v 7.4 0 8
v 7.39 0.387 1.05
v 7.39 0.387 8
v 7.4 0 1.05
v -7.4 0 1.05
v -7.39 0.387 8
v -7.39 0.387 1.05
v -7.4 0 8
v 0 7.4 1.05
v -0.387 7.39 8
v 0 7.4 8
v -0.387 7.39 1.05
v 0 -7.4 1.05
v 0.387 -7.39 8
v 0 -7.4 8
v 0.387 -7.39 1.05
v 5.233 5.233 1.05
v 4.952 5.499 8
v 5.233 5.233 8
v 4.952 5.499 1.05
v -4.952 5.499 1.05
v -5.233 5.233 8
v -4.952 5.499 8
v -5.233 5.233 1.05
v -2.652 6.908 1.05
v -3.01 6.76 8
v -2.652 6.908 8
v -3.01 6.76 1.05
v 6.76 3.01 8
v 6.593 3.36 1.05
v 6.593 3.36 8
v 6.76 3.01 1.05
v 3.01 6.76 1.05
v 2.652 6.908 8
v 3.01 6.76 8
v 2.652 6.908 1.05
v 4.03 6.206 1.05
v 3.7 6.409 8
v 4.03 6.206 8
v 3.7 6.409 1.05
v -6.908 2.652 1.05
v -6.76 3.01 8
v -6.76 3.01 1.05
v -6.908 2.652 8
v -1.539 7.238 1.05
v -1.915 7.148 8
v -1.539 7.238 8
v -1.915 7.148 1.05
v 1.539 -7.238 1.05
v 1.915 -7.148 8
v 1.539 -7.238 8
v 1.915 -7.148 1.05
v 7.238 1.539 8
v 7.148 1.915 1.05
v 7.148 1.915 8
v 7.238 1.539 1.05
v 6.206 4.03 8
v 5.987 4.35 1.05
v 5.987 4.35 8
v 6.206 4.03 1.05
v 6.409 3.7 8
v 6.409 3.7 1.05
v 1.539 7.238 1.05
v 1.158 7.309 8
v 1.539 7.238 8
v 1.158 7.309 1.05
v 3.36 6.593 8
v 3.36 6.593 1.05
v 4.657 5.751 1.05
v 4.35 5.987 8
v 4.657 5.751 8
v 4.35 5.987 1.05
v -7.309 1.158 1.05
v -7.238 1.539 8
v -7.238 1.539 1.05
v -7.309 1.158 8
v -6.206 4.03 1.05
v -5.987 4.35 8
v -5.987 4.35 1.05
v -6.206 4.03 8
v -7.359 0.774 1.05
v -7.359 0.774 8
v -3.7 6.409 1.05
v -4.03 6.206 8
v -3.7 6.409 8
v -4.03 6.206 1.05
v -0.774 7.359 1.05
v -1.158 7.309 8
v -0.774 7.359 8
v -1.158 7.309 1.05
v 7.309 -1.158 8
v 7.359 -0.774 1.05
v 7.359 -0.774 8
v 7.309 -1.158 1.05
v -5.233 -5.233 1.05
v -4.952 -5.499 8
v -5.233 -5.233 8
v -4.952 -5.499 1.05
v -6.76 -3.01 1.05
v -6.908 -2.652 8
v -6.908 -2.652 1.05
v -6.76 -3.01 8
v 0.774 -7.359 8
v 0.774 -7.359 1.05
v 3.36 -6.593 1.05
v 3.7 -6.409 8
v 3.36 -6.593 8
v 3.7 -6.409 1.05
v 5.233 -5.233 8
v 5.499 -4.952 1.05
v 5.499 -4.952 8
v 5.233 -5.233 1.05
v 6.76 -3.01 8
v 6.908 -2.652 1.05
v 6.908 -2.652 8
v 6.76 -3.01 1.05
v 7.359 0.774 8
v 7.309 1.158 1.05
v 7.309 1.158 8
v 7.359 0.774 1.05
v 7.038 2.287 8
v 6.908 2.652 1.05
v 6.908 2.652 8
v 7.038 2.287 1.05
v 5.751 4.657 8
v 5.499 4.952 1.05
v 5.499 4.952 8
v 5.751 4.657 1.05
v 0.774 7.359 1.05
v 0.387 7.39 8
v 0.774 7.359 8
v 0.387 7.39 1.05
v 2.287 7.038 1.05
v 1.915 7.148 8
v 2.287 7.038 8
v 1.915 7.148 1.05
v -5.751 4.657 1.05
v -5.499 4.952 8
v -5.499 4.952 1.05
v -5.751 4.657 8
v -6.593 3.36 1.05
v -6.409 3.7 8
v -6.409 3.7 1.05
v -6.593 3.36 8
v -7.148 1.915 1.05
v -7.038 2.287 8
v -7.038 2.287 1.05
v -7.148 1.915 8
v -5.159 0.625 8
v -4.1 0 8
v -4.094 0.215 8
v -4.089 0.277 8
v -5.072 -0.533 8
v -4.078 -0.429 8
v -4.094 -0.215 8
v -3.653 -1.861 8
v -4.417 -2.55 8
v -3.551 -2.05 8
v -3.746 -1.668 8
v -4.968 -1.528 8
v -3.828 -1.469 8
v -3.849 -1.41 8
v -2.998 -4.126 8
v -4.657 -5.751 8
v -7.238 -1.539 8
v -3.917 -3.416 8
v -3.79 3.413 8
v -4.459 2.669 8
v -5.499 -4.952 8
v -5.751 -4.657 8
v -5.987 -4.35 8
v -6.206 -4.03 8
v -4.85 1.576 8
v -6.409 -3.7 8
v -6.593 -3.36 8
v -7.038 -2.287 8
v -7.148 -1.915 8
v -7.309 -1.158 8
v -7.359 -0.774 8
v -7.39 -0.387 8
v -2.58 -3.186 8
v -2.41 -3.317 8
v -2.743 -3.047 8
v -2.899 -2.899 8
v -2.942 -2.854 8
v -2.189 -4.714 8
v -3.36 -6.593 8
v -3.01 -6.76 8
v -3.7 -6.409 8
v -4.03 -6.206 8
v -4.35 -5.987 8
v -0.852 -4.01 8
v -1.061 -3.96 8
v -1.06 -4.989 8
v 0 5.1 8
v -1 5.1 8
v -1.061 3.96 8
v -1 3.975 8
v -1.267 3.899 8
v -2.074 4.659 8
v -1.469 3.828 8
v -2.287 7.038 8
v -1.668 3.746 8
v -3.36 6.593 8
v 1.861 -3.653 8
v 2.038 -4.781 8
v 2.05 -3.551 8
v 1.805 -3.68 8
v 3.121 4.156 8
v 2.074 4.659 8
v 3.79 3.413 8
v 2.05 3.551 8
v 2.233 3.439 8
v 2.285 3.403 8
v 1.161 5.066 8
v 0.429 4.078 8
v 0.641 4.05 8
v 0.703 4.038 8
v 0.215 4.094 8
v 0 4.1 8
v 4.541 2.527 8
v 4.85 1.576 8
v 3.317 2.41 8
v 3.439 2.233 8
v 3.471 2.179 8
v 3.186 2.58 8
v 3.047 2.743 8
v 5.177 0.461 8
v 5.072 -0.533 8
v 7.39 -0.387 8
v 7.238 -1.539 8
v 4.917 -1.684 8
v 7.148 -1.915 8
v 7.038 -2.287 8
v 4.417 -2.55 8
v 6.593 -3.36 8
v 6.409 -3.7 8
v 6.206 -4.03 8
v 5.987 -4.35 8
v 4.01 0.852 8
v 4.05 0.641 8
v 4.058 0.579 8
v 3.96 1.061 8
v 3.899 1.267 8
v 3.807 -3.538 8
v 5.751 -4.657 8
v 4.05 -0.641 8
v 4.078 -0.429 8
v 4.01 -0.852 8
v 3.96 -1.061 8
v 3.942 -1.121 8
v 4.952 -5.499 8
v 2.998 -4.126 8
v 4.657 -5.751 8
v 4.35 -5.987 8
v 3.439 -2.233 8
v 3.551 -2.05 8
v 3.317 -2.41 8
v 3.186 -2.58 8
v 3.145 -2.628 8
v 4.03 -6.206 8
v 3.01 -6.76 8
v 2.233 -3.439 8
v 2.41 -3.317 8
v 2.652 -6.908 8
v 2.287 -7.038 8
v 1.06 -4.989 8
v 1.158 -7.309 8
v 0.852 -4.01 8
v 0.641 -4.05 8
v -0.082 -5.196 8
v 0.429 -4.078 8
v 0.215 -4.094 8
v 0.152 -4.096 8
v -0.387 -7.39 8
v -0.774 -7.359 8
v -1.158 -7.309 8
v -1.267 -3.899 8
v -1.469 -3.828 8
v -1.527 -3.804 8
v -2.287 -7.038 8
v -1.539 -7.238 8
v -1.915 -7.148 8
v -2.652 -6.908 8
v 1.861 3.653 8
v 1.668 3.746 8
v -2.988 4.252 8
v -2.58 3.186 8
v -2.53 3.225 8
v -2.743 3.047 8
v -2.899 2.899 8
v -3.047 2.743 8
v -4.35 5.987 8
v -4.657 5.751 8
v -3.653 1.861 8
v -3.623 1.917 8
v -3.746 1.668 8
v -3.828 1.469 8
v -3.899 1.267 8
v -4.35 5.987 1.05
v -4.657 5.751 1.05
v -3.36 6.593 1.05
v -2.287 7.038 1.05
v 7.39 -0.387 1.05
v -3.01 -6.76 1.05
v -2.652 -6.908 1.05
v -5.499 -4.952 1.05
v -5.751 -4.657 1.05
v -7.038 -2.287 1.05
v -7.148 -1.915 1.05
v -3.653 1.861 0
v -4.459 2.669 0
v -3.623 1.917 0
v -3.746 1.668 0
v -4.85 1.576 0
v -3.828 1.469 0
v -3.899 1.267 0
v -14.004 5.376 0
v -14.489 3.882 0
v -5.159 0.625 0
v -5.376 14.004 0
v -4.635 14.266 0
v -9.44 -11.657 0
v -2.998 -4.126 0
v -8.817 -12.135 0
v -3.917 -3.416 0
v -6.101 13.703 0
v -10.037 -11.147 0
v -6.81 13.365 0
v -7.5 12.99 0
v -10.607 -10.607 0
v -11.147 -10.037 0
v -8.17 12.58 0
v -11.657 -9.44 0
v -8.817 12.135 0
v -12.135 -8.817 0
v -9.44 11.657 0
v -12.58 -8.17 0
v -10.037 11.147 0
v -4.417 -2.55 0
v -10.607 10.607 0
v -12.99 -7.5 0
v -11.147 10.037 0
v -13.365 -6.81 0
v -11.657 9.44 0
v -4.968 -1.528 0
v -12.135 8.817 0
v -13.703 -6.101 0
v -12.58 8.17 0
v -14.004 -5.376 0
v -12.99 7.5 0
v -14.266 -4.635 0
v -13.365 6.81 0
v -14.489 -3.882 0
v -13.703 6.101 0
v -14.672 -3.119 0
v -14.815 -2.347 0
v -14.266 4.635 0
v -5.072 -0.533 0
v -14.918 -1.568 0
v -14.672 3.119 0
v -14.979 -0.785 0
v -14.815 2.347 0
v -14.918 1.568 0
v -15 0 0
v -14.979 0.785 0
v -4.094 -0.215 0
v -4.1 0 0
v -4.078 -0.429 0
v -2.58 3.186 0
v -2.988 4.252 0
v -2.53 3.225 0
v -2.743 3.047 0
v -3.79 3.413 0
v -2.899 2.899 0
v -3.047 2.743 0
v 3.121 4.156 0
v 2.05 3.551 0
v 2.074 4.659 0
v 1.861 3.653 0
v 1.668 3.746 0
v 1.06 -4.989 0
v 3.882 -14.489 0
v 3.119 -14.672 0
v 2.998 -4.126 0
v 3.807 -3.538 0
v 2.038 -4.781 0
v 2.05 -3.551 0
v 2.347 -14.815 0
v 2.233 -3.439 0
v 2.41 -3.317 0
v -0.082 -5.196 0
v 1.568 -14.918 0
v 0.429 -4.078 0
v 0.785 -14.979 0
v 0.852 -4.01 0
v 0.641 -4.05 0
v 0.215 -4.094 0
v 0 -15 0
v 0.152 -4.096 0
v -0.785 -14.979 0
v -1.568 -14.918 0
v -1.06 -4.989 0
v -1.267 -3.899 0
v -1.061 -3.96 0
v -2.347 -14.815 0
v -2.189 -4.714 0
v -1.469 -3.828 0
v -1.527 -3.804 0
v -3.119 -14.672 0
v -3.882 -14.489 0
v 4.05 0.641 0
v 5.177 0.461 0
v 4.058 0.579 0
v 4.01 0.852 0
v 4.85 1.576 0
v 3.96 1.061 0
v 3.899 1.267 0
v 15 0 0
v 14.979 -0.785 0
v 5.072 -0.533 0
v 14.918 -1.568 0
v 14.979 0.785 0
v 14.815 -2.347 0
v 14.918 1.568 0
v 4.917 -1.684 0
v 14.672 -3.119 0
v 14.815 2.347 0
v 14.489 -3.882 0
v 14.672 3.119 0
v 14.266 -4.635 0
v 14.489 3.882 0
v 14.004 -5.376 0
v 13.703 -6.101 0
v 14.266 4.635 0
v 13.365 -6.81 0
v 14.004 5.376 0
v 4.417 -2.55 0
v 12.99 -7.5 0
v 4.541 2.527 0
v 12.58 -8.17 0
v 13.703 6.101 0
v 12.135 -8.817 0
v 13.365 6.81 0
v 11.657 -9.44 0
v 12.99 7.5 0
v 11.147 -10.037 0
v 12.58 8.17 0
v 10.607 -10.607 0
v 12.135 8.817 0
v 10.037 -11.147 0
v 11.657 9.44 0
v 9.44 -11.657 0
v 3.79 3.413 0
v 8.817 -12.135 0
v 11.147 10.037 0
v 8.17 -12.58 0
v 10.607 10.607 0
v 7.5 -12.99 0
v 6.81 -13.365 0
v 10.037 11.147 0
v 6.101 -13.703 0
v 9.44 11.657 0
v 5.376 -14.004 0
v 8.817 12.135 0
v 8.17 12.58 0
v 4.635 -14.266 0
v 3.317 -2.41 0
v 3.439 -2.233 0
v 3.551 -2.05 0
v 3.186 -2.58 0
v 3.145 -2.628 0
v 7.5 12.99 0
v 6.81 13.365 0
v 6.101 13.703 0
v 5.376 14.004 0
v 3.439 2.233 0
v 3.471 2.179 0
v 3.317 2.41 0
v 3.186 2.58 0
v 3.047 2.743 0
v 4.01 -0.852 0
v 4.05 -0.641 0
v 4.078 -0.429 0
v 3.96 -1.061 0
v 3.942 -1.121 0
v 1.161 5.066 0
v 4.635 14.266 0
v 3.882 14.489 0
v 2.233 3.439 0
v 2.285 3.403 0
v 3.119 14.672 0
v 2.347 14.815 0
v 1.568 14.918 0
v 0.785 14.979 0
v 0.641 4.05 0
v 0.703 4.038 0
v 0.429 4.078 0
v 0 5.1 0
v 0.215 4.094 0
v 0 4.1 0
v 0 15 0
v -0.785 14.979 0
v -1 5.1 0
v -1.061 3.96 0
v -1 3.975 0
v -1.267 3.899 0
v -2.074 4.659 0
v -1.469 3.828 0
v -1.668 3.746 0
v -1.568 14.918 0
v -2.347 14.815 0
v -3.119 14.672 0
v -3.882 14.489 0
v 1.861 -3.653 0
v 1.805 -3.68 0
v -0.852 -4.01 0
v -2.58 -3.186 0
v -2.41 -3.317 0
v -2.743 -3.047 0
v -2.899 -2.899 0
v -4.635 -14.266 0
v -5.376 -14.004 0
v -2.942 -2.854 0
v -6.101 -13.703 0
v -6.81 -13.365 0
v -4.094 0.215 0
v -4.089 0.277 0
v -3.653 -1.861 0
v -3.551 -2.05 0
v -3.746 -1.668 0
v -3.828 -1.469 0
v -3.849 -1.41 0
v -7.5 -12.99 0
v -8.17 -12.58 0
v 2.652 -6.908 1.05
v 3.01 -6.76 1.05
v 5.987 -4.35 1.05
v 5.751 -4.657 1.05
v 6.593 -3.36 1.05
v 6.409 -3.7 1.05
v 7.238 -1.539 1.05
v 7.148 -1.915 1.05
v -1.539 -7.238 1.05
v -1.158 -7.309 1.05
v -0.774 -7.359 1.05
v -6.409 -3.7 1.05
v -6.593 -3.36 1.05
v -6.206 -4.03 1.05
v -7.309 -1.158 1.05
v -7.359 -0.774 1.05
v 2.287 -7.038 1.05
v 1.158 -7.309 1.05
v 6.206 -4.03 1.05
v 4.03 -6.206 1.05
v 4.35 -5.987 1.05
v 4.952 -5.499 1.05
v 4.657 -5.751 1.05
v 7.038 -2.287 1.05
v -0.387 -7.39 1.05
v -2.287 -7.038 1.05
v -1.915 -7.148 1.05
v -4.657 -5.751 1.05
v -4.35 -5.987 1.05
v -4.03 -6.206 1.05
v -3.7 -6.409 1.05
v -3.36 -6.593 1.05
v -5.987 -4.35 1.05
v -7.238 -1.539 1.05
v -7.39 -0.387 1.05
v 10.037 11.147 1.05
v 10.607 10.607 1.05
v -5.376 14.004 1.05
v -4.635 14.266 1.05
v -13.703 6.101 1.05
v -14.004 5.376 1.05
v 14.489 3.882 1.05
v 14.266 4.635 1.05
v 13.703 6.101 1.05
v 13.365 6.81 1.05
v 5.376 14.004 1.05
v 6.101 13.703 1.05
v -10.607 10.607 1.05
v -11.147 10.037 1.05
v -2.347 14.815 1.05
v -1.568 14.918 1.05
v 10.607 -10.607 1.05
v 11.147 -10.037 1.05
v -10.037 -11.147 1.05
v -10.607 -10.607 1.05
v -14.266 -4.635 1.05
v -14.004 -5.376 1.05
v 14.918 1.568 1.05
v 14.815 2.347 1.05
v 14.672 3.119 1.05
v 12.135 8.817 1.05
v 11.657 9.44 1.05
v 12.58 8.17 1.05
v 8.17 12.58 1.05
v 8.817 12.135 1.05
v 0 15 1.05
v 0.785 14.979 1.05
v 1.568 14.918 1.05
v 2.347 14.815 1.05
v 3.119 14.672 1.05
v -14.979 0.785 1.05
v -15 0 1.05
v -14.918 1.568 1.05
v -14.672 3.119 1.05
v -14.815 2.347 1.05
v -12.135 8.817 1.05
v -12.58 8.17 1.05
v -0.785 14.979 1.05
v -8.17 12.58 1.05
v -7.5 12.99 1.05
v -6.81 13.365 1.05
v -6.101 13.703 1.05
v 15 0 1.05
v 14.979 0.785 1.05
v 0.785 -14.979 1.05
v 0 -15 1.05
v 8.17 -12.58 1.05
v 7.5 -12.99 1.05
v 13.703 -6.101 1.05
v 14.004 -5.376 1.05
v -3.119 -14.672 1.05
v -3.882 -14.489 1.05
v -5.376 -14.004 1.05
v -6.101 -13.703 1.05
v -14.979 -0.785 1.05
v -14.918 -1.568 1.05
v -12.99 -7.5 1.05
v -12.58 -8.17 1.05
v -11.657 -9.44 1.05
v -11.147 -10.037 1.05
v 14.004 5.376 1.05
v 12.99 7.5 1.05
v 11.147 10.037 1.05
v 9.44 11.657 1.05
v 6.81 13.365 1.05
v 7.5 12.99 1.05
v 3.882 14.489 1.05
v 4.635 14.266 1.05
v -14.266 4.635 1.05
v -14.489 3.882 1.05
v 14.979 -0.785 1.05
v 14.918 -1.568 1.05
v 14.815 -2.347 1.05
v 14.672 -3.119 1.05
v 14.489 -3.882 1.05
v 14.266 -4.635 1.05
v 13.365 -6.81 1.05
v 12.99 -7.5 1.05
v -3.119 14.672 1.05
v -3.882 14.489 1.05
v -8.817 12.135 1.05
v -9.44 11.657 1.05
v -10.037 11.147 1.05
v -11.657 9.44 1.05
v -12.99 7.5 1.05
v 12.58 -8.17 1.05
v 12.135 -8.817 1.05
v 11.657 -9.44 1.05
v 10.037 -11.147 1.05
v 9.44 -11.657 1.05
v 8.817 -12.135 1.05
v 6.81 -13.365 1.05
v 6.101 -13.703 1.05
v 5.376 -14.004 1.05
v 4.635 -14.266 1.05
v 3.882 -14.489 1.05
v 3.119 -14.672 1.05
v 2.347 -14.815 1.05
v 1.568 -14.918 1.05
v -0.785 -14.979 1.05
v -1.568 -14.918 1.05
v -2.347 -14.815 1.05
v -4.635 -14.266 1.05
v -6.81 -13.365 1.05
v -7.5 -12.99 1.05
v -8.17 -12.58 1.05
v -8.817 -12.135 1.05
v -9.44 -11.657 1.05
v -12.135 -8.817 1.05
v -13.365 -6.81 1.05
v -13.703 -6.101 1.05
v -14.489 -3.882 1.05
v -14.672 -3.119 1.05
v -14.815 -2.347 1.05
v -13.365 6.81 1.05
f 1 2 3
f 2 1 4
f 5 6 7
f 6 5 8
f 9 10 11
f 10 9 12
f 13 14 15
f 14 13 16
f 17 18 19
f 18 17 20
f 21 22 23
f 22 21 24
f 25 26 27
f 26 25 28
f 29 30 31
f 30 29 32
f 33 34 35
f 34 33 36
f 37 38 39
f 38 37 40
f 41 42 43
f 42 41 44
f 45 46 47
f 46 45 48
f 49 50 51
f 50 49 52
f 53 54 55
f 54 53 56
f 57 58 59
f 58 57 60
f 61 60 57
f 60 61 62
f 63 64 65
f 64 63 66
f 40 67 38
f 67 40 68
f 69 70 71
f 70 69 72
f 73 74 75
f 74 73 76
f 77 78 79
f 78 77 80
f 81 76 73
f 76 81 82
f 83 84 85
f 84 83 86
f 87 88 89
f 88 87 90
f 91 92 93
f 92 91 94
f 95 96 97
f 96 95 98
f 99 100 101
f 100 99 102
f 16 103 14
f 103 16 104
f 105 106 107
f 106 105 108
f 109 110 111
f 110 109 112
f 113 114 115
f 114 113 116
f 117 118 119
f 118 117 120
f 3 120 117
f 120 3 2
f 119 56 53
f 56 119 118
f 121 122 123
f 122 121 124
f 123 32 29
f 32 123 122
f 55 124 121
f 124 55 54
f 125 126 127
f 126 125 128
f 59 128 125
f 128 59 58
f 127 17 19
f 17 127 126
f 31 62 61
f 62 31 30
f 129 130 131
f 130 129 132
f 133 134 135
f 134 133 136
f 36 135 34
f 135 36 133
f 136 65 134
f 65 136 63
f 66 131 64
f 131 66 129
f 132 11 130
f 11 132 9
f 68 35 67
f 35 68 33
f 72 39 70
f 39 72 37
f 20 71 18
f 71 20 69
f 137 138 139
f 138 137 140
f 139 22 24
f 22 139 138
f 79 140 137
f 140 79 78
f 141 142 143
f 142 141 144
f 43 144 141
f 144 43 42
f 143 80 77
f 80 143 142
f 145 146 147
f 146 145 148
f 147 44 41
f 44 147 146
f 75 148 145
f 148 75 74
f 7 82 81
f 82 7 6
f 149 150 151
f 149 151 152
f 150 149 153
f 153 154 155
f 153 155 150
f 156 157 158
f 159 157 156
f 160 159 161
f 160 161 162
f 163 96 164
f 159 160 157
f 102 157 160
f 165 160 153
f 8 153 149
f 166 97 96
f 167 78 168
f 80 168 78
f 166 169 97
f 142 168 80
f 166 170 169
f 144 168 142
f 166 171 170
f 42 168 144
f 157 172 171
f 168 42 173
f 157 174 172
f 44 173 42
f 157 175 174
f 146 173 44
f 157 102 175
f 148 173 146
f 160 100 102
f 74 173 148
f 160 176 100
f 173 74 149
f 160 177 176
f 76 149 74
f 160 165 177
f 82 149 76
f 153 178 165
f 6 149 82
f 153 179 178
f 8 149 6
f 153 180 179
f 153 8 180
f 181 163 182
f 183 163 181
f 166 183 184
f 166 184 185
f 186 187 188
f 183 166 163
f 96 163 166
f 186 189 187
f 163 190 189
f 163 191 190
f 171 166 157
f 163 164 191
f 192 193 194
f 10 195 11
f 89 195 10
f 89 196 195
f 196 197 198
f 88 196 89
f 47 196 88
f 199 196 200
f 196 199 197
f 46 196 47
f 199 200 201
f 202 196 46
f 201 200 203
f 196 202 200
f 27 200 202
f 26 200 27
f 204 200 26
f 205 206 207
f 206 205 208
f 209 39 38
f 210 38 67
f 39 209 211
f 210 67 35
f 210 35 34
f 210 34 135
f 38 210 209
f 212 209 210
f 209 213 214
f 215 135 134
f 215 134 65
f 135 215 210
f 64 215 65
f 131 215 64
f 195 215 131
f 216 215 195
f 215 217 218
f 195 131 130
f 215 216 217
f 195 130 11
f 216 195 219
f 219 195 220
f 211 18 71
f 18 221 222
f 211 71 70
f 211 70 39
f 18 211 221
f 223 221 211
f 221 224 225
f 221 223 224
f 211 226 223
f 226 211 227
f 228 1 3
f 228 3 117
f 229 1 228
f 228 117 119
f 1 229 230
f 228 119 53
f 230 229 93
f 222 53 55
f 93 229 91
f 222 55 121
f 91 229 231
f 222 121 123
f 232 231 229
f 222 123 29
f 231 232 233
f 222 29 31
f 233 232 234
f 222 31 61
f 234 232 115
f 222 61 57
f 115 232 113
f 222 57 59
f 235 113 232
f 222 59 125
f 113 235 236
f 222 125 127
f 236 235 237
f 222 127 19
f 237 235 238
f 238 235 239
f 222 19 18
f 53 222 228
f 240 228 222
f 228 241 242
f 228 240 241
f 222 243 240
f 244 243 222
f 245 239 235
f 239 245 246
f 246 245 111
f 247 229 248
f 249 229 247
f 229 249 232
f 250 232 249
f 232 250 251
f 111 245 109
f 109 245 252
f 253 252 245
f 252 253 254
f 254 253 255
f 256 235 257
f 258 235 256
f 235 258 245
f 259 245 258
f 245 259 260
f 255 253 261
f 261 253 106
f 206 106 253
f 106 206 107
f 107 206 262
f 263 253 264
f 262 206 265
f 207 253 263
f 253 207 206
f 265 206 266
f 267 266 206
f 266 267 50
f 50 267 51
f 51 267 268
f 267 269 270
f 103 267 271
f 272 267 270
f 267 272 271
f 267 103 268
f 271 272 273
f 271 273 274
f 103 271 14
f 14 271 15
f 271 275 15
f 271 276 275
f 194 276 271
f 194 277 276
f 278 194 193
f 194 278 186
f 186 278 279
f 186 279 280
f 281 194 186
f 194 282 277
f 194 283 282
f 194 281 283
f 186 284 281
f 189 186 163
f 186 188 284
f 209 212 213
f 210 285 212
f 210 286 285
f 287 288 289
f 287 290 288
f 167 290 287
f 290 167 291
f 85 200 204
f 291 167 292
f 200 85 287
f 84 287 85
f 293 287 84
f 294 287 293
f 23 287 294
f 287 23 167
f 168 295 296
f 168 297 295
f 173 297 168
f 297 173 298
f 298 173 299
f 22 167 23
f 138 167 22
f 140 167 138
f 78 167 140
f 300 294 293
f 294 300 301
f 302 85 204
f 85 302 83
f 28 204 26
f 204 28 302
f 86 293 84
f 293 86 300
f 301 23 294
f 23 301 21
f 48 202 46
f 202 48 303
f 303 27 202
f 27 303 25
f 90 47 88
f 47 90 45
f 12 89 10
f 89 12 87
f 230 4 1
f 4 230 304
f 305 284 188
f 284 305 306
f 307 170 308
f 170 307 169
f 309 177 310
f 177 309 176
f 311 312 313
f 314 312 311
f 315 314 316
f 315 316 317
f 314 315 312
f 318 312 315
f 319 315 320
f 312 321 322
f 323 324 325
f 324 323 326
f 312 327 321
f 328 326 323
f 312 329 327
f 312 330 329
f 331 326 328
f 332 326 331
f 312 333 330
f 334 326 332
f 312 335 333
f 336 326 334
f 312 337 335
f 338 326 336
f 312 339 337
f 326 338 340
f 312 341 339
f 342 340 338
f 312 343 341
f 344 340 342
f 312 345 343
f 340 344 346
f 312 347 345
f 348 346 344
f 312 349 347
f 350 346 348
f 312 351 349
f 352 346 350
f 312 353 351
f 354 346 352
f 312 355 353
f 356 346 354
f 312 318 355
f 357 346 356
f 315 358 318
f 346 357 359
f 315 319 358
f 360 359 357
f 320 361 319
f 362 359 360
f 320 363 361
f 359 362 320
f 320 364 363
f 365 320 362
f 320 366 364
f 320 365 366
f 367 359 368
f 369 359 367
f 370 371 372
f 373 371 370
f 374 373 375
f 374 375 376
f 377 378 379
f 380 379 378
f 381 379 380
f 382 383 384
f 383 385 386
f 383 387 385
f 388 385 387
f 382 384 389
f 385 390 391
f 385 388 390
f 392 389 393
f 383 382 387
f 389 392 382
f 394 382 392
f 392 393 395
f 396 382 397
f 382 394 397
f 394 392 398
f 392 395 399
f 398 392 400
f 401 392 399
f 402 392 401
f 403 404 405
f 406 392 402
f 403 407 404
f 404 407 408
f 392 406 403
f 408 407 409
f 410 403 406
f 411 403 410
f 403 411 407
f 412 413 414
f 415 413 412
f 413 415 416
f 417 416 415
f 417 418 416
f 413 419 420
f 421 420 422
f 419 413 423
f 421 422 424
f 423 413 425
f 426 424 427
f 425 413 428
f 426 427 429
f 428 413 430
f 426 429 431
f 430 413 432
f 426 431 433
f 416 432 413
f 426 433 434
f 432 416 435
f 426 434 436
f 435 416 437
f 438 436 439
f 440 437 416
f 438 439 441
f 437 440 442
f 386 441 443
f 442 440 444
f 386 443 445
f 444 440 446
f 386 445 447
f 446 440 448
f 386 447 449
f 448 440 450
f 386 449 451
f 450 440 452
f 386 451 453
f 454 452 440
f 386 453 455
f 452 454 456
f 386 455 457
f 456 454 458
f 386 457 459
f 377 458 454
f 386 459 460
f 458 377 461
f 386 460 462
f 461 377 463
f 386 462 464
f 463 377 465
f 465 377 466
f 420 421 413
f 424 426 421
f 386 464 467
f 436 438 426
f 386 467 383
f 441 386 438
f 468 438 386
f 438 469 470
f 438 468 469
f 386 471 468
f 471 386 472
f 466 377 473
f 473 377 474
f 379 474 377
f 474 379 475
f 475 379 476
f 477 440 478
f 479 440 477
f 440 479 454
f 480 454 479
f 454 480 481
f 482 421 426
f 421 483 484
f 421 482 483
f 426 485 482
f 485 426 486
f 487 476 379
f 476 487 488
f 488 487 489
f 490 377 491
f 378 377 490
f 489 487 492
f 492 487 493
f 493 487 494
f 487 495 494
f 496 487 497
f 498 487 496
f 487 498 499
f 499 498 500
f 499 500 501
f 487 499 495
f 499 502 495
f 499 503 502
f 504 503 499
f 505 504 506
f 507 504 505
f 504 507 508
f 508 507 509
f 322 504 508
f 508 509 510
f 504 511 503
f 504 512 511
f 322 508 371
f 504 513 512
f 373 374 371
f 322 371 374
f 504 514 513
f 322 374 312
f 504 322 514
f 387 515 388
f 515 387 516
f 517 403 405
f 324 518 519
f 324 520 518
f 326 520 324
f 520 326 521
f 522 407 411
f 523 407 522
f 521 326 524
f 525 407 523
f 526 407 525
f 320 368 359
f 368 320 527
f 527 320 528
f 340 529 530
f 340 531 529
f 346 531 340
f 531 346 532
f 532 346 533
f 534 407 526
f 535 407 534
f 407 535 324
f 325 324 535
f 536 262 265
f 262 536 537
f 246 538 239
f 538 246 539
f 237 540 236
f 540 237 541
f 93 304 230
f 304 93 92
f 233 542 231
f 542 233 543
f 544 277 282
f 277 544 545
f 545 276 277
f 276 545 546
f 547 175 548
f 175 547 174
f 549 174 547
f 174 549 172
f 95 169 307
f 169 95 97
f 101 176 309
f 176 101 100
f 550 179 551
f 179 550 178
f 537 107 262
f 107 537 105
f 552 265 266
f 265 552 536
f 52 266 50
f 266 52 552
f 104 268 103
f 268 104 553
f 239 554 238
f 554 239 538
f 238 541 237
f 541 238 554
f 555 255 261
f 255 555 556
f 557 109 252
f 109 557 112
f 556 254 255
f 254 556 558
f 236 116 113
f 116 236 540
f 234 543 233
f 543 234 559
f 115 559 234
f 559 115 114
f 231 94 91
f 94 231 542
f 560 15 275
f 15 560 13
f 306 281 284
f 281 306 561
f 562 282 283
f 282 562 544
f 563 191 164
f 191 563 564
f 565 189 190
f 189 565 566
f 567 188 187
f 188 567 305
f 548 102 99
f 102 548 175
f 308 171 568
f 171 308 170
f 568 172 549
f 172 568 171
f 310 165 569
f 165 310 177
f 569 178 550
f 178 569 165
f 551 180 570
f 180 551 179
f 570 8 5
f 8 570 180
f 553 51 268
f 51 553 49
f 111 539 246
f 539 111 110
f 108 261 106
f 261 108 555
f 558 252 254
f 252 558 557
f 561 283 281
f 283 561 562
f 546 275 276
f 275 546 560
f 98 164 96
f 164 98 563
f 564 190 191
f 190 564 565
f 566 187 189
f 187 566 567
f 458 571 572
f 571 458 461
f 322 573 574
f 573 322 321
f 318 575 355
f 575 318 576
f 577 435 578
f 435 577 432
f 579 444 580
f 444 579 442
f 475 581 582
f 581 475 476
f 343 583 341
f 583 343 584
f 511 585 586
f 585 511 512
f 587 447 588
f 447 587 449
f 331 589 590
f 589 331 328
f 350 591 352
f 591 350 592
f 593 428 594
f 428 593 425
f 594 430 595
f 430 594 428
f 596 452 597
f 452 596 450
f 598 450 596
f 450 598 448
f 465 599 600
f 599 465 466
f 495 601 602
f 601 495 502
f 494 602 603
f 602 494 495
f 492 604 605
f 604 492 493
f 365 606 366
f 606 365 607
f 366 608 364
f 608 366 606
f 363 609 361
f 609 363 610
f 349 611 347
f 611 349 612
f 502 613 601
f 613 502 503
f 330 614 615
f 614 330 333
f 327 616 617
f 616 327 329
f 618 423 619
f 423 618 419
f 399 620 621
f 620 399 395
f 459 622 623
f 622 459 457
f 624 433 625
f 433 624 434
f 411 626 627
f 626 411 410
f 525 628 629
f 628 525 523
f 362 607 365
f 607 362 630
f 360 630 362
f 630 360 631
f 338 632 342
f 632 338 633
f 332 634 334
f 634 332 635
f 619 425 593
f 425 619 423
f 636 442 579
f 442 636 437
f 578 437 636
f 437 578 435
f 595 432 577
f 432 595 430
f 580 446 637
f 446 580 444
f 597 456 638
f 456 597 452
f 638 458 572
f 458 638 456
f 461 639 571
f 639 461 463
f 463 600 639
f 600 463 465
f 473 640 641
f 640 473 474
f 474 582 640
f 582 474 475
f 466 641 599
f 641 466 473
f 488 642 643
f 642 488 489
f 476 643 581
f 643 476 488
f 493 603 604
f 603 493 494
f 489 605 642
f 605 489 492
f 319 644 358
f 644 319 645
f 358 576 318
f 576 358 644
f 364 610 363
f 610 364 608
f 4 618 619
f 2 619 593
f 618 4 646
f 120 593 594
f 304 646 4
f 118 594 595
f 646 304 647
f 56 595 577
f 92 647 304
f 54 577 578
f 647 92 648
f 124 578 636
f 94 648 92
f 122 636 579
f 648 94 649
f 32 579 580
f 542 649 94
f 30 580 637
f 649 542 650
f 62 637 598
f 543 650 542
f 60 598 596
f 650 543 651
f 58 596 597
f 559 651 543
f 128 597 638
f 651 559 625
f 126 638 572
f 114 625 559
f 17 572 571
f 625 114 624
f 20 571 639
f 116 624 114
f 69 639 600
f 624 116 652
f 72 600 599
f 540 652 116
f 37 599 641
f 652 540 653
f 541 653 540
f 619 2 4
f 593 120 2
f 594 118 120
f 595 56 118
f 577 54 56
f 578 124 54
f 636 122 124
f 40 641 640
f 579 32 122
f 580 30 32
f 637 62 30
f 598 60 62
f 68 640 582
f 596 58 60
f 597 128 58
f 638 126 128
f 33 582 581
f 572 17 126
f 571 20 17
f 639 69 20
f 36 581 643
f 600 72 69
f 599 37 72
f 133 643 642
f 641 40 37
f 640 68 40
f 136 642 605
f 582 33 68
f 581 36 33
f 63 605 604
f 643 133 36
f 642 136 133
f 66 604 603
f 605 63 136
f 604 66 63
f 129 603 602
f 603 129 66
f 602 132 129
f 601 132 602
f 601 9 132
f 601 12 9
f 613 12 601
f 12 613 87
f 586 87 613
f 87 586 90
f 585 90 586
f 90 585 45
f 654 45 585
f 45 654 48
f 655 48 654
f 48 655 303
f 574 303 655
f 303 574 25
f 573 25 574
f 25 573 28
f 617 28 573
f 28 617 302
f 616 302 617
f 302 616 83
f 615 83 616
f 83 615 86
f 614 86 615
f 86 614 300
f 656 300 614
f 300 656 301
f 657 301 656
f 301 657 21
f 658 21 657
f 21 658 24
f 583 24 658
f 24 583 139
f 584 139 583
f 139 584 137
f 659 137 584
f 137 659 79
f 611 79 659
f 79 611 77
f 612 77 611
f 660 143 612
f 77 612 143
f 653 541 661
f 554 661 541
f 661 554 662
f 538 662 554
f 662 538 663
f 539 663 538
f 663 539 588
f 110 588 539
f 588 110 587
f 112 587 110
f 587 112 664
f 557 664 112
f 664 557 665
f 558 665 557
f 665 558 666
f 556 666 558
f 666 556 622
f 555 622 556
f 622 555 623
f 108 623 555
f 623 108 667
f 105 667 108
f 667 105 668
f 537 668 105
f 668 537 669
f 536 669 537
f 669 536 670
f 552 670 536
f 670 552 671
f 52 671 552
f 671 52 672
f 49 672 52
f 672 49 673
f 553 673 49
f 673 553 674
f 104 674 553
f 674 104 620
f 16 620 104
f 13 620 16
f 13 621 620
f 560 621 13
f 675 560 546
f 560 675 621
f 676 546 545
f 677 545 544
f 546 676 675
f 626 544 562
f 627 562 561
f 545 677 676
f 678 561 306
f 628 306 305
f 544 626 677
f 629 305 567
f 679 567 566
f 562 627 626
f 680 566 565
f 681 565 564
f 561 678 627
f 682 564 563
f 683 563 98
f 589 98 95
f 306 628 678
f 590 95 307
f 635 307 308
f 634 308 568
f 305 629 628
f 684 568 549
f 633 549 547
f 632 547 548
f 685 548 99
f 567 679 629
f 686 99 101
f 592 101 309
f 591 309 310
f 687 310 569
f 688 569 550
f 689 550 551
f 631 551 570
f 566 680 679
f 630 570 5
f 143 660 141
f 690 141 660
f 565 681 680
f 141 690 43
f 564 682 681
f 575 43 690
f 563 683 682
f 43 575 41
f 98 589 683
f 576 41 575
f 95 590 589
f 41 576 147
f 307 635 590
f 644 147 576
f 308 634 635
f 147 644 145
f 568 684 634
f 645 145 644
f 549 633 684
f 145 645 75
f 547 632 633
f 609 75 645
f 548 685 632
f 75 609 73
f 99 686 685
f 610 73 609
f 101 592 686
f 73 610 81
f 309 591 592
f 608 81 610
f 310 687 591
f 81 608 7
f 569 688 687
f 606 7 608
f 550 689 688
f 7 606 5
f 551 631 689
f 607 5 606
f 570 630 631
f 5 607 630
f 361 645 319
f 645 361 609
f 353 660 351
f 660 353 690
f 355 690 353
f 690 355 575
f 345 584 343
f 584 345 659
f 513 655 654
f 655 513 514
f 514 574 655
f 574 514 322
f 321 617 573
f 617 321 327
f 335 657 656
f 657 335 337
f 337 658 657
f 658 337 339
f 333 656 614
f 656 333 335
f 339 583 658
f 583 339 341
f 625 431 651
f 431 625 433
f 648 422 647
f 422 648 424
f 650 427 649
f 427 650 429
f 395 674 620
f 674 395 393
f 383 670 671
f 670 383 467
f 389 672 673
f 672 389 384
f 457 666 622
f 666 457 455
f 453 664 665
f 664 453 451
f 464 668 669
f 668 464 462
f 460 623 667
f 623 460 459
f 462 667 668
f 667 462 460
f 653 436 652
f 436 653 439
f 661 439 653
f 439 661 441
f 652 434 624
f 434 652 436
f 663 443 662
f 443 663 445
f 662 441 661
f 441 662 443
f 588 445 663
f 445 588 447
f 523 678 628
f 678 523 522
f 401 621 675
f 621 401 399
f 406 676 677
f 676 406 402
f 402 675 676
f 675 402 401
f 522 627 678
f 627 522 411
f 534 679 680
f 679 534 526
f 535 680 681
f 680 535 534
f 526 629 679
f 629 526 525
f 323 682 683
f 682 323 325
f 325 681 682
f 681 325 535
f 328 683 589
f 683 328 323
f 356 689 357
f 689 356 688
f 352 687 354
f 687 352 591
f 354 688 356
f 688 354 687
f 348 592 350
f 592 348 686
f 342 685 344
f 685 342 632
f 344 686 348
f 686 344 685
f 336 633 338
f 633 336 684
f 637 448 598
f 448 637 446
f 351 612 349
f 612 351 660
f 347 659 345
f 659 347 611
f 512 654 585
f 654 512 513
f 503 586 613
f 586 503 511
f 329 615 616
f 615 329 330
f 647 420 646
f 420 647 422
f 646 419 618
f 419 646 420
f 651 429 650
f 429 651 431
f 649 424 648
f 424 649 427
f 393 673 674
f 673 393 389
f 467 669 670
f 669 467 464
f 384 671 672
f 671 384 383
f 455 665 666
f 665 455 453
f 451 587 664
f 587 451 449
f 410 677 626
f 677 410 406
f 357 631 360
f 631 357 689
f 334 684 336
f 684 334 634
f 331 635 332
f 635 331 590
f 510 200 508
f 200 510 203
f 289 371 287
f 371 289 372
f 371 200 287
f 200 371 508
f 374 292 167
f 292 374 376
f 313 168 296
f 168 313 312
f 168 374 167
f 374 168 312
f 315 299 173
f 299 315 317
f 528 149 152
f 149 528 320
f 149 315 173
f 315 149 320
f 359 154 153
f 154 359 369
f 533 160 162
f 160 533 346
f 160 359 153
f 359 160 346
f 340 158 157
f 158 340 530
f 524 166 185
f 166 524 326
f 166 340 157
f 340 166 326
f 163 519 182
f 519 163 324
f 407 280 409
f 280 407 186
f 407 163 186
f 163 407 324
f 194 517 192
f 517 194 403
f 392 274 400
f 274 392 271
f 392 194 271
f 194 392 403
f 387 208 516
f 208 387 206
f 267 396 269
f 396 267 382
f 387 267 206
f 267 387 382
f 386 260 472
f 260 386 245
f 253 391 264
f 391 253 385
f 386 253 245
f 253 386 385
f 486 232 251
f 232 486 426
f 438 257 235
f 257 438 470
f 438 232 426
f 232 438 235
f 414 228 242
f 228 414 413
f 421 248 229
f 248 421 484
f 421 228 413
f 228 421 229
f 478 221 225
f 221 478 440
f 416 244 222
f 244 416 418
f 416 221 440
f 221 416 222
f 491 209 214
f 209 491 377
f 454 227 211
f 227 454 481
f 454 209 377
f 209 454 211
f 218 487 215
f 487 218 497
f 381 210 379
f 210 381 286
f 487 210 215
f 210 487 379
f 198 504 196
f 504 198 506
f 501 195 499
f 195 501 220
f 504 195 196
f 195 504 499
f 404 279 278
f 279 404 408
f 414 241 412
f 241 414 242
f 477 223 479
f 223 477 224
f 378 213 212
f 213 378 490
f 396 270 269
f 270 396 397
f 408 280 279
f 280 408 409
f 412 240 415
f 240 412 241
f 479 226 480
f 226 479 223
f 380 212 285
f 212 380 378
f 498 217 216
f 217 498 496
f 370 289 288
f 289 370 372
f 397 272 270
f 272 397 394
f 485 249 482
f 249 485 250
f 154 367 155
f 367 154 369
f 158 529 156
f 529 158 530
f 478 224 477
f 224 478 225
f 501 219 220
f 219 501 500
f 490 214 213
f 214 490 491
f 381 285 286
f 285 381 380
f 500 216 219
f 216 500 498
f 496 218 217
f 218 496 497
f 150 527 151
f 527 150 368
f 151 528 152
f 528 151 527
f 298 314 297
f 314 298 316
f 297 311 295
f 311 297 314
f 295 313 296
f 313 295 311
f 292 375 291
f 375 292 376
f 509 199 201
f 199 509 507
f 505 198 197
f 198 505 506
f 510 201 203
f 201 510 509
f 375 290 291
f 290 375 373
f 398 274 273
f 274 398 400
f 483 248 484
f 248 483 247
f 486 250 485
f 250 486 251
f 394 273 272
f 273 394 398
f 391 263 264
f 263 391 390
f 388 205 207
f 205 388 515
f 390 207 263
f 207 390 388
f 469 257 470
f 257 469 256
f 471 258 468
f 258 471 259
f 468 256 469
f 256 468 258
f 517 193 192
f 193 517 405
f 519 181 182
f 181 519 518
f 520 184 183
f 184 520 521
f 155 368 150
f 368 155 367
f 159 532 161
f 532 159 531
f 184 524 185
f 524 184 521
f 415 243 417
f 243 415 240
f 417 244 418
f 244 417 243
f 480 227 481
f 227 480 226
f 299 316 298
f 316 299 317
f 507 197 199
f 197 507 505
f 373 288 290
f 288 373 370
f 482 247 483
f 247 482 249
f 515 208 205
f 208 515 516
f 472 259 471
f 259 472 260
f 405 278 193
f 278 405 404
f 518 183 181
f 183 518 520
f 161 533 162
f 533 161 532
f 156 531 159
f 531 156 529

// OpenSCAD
mm=1;
layer = 0.35*mm;

slop = 0.1*mm;

pen_rad = 4*mm+slop;
shoe_hole_rad = 15.6*mm/2 - 4*slop;
inset_height = 8*mm;
flange_thickness = 3*layer;
flange_rad = 15*mm;
eps=0.001*mm;

$fn=120;

num_cuts = 15;
cut_width = 1*mm;
difference(){
    union(){
        cylinder(r = shoe_hole_rad, h=inset_height);
        cylinder(r=flange_rad, h=flange_thickness);
    }
    union(){
        translate([0,0,-eps])
        cylinder(r=pen_rad, h=2*inset_height);
        for(i=[1:num_cuts]) {
            rotate([0,0,360/num_cuts*i])
            translate([-cut_width,0,-eps])
            cube([cut_width, pen_rad+cut_width, 2*inset_height]);
        }
    }
}
